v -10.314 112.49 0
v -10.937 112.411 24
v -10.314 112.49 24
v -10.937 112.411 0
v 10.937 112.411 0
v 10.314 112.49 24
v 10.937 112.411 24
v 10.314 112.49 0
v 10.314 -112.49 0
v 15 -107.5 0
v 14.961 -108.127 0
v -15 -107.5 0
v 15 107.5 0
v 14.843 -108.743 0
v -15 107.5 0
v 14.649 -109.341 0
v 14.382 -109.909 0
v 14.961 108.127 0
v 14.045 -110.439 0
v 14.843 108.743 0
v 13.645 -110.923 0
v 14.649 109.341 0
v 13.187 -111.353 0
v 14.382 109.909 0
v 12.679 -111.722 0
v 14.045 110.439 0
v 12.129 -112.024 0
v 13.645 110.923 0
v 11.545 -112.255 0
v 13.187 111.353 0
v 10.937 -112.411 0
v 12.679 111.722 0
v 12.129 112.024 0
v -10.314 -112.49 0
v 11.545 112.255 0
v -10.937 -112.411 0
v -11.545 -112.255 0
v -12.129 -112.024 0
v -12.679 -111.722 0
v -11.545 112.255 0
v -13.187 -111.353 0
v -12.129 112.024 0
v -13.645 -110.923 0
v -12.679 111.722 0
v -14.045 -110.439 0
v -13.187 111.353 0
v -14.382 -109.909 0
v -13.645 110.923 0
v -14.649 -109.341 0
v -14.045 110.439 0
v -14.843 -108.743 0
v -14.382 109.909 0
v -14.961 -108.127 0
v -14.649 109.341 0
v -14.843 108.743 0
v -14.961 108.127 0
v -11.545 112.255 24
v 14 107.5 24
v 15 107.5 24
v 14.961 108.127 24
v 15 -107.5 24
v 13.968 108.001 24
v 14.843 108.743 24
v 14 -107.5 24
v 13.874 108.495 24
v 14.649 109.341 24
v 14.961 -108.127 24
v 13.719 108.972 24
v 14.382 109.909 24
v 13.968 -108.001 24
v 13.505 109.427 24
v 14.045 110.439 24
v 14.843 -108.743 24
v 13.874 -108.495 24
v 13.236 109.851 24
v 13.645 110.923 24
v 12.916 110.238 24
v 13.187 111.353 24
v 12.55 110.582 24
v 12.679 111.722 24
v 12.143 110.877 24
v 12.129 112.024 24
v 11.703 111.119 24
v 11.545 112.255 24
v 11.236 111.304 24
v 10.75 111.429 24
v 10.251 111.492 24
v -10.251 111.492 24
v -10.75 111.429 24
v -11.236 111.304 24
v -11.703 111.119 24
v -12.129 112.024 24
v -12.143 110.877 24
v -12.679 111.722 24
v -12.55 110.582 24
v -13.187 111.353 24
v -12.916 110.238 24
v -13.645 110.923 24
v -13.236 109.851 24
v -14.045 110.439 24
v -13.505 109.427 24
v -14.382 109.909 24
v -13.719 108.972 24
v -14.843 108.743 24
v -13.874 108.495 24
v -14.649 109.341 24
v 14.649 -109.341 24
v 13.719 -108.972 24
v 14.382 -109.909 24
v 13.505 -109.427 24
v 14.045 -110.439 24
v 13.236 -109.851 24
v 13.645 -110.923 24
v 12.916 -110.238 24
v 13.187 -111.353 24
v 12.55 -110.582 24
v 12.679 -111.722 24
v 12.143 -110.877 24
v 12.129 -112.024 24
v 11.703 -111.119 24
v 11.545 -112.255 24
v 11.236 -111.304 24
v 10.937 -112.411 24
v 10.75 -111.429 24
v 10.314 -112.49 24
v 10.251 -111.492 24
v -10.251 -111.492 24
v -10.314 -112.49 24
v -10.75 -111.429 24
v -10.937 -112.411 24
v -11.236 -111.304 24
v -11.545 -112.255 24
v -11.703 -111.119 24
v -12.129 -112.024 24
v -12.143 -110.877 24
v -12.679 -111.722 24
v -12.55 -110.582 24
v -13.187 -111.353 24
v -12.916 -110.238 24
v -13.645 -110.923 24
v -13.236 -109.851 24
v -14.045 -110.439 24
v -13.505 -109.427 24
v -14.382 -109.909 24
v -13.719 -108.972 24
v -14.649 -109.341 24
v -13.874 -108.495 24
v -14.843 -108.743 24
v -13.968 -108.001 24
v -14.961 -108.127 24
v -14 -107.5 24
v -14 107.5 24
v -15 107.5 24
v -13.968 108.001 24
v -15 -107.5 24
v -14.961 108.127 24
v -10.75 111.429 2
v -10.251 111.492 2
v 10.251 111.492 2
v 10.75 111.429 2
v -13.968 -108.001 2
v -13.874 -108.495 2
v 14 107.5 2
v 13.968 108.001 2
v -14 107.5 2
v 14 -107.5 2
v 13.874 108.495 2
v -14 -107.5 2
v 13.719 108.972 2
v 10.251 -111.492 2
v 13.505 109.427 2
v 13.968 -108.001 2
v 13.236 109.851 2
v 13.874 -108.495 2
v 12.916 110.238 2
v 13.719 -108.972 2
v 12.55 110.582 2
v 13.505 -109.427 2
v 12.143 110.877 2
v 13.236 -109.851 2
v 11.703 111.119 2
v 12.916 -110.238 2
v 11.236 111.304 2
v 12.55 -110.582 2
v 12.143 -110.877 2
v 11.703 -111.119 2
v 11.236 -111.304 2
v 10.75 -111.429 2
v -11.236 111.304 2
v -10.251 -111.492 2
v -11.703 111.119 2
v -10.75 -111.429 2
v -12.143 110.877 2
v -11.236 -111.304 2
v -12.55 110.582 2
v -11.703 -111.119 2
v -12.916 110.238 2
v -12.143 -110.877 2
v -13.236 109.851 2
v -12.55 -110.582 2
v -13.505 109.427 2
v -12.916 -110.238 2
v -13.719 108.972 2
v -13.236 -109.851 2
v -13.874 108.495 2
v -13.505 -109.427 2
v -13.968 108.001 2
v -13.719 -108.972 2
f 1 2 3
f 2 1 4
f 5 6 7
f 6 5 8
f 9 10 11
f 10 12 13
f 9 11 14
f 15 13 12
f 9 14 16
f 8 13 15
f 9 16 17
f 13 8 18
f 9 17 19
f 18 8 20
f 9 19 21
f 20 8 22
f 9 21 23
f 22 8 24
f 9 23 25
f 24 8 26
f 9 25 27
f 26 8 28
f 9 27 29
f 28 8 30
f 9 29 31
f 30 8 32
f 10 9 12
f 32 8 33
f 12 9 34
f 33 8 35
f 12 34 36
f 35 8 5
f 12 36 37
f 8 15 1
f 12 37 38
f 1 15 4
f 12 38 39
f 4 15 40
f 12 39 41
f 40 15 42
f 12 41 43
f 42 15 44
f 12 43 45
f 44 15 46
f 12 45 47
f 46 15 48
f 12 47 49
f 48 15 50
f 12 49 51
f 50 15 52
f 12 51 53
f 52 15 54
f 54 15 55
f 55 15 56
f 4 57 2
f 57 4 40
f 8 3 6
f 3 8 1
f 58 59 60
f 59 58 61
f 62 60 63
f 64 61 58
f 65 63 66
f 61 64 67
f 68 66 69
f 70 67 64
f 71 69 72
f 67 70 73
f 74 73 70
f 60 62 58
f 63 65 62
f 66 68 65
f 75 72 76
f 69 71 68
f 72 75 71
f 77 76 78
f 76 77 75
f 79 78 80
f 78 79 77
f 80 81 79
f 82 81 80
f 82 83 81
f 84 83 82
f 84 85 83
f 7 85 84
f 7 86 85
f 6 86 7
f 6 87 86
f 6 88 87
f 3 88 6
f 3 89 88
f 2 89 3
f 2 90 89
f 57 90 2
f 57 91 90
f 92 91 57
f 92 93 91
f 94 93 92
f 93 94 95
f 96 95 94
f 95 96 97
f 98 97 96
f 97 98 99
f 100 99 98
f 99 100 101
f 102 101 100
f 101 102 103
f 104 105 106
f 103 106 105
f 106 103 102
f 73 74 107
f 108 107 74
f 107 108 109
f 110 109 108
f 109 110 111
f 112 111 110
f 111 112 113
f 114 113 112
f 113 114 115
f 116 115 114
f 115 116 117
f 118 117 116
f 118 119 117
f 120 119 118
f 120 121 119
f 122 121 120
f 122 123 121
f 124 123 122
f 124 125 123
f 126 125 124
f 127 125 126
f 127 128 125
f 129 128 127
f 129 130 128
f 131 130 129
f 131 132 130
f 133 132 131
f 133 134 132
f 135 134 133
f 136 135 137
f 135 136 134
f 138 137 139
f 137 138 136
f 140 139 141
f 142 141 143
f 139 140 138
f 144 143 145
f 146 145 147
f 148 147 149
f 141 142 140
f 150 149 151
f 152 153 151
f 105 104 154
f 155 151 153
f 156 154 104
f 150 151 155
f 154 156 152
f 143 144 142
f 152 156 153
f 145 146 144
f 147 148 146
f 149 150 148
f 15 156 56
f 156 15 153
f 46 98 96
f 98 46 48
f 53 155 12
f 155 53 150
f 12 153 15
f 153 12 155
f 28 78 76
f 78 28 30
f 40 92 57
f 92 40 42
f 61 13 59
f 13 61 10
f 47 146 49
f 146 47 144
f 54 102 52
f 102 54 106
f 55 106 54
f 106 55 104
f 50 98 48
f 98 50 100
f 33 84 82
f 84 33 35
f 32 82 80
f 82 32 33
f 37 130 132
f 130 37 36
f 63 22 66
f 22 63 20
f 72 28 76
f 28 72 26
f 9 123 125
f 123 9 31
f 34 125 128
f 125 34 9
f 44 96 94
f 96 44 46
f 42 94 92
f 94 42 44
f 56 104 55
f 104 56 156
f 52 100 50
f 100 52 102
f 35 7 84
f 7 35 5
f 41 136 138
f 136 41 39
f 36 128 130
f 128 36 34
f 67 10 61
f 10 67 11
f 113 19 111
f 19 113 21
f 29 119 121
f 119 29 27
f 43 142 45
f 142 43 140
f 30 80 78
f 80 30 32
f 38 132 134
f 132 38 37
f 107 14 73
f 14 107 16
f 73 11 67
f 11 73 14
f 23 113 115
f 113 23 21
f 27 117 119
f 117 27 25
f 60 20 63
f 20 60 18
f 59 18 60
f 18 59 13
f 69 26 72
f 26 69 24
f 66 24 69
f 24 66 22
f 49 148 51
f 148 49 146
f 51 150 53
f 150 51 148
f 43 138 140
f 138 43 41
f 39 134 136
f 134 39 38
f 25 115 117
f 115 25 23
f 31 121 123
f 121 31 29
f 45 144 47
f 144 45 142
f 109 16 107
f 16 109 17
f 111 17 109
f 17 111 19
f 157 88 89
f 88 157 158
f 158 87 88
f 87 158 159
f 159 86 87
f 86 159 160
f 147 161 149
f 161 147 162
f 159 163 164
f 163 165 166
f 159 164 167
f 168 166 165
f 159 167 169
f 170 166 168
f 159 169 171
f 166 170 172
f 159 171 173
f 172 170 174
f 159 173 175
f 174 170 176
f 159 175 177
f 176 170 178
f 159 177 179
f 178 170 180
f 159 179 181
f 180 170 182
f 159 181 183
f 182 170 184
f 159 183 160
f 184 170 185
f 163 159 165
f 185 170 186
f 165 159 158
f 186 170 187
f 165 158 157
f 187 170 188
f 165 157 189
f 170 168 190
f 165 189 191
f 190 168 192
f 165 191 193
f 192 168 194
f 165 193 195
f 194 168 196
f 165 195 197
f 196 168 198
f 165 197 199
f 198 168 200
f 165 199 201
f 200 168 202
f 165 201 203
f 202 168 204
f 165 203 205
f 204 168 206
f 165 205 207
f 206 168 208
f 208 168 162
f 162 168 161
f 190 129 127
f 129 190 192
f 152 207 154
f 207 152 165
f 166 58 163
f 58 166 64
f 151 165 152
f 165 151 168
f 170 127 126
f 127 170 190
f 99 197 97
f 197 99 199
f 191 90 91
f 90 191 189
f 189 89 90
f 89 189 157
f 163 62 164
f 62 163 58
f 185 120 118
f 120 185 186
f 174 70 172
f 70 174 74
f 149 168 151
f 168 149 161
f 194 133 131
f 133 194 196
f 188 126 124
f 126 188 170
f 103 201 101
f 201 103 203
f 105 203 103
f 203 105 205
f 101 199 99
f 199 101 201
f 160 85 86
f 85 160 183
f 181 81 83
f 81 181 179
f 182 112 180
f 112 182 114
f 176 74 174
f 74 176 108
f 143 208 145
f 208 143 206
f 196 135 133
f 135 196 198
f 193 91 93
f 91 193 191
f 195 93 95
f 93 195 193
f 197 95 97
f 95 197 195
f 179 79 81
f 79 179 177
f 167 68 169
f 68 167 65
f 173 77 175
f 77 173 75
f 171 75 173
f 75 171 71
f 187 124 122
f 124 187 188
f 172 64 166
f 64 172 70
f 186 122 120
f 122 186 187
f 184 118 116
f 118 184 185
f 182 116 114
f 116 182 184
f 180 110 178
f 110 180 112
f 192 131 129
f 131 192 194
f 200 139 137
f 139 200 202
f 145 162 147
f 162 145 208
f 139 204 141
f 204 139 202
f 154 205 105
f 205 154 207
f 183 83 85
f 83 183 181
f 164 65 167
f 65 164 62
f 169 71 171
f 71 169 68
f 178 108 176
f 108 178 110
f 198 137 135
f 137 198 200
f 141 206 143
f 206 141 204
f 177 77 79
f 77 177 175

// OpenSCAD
$fn = 50;


difference() {
	union() {
		hull() {
			translate(v = [-10.0000000000, 107.5000000000, 0]) {
				cylinder(h = 24, r = 5);
			}
			translate(v = [10.0000000000, 107.5000000000, 0]) {
				cylinder(h = 24, r = 5);
			}
			translate(v = [-10.0000000000, -107.5000000000, 0]) {
				cylinder(h = 24, r = 5);
			}
			translate(v = [10.0000000000, -107.5000000000, 0]) {
				cylinder(h = 24, r = 5);
			}
		}
	}
	union() {
		translate(v = [0, 0, 2]) {
			hull() {
				translate(v = [-10.0000000000, 107.5000000000, 0]) {
					cylinder(h = 22, r = 4);
				}
				translate(v = [10.0000000000, 107.5000000000, 0]) {
					cylinder(h = 22, r = 4);
				}
				translate(v = [-10.0000000000, -107.5000000000, 0]) {
					cylinder(h = 22, r = 4);
				}
				translate(v = [10.0000000000, -107.5000000000, 0]) {
					cylinder(h = 22, r = 4);
				}
			}
		}
	}
}
